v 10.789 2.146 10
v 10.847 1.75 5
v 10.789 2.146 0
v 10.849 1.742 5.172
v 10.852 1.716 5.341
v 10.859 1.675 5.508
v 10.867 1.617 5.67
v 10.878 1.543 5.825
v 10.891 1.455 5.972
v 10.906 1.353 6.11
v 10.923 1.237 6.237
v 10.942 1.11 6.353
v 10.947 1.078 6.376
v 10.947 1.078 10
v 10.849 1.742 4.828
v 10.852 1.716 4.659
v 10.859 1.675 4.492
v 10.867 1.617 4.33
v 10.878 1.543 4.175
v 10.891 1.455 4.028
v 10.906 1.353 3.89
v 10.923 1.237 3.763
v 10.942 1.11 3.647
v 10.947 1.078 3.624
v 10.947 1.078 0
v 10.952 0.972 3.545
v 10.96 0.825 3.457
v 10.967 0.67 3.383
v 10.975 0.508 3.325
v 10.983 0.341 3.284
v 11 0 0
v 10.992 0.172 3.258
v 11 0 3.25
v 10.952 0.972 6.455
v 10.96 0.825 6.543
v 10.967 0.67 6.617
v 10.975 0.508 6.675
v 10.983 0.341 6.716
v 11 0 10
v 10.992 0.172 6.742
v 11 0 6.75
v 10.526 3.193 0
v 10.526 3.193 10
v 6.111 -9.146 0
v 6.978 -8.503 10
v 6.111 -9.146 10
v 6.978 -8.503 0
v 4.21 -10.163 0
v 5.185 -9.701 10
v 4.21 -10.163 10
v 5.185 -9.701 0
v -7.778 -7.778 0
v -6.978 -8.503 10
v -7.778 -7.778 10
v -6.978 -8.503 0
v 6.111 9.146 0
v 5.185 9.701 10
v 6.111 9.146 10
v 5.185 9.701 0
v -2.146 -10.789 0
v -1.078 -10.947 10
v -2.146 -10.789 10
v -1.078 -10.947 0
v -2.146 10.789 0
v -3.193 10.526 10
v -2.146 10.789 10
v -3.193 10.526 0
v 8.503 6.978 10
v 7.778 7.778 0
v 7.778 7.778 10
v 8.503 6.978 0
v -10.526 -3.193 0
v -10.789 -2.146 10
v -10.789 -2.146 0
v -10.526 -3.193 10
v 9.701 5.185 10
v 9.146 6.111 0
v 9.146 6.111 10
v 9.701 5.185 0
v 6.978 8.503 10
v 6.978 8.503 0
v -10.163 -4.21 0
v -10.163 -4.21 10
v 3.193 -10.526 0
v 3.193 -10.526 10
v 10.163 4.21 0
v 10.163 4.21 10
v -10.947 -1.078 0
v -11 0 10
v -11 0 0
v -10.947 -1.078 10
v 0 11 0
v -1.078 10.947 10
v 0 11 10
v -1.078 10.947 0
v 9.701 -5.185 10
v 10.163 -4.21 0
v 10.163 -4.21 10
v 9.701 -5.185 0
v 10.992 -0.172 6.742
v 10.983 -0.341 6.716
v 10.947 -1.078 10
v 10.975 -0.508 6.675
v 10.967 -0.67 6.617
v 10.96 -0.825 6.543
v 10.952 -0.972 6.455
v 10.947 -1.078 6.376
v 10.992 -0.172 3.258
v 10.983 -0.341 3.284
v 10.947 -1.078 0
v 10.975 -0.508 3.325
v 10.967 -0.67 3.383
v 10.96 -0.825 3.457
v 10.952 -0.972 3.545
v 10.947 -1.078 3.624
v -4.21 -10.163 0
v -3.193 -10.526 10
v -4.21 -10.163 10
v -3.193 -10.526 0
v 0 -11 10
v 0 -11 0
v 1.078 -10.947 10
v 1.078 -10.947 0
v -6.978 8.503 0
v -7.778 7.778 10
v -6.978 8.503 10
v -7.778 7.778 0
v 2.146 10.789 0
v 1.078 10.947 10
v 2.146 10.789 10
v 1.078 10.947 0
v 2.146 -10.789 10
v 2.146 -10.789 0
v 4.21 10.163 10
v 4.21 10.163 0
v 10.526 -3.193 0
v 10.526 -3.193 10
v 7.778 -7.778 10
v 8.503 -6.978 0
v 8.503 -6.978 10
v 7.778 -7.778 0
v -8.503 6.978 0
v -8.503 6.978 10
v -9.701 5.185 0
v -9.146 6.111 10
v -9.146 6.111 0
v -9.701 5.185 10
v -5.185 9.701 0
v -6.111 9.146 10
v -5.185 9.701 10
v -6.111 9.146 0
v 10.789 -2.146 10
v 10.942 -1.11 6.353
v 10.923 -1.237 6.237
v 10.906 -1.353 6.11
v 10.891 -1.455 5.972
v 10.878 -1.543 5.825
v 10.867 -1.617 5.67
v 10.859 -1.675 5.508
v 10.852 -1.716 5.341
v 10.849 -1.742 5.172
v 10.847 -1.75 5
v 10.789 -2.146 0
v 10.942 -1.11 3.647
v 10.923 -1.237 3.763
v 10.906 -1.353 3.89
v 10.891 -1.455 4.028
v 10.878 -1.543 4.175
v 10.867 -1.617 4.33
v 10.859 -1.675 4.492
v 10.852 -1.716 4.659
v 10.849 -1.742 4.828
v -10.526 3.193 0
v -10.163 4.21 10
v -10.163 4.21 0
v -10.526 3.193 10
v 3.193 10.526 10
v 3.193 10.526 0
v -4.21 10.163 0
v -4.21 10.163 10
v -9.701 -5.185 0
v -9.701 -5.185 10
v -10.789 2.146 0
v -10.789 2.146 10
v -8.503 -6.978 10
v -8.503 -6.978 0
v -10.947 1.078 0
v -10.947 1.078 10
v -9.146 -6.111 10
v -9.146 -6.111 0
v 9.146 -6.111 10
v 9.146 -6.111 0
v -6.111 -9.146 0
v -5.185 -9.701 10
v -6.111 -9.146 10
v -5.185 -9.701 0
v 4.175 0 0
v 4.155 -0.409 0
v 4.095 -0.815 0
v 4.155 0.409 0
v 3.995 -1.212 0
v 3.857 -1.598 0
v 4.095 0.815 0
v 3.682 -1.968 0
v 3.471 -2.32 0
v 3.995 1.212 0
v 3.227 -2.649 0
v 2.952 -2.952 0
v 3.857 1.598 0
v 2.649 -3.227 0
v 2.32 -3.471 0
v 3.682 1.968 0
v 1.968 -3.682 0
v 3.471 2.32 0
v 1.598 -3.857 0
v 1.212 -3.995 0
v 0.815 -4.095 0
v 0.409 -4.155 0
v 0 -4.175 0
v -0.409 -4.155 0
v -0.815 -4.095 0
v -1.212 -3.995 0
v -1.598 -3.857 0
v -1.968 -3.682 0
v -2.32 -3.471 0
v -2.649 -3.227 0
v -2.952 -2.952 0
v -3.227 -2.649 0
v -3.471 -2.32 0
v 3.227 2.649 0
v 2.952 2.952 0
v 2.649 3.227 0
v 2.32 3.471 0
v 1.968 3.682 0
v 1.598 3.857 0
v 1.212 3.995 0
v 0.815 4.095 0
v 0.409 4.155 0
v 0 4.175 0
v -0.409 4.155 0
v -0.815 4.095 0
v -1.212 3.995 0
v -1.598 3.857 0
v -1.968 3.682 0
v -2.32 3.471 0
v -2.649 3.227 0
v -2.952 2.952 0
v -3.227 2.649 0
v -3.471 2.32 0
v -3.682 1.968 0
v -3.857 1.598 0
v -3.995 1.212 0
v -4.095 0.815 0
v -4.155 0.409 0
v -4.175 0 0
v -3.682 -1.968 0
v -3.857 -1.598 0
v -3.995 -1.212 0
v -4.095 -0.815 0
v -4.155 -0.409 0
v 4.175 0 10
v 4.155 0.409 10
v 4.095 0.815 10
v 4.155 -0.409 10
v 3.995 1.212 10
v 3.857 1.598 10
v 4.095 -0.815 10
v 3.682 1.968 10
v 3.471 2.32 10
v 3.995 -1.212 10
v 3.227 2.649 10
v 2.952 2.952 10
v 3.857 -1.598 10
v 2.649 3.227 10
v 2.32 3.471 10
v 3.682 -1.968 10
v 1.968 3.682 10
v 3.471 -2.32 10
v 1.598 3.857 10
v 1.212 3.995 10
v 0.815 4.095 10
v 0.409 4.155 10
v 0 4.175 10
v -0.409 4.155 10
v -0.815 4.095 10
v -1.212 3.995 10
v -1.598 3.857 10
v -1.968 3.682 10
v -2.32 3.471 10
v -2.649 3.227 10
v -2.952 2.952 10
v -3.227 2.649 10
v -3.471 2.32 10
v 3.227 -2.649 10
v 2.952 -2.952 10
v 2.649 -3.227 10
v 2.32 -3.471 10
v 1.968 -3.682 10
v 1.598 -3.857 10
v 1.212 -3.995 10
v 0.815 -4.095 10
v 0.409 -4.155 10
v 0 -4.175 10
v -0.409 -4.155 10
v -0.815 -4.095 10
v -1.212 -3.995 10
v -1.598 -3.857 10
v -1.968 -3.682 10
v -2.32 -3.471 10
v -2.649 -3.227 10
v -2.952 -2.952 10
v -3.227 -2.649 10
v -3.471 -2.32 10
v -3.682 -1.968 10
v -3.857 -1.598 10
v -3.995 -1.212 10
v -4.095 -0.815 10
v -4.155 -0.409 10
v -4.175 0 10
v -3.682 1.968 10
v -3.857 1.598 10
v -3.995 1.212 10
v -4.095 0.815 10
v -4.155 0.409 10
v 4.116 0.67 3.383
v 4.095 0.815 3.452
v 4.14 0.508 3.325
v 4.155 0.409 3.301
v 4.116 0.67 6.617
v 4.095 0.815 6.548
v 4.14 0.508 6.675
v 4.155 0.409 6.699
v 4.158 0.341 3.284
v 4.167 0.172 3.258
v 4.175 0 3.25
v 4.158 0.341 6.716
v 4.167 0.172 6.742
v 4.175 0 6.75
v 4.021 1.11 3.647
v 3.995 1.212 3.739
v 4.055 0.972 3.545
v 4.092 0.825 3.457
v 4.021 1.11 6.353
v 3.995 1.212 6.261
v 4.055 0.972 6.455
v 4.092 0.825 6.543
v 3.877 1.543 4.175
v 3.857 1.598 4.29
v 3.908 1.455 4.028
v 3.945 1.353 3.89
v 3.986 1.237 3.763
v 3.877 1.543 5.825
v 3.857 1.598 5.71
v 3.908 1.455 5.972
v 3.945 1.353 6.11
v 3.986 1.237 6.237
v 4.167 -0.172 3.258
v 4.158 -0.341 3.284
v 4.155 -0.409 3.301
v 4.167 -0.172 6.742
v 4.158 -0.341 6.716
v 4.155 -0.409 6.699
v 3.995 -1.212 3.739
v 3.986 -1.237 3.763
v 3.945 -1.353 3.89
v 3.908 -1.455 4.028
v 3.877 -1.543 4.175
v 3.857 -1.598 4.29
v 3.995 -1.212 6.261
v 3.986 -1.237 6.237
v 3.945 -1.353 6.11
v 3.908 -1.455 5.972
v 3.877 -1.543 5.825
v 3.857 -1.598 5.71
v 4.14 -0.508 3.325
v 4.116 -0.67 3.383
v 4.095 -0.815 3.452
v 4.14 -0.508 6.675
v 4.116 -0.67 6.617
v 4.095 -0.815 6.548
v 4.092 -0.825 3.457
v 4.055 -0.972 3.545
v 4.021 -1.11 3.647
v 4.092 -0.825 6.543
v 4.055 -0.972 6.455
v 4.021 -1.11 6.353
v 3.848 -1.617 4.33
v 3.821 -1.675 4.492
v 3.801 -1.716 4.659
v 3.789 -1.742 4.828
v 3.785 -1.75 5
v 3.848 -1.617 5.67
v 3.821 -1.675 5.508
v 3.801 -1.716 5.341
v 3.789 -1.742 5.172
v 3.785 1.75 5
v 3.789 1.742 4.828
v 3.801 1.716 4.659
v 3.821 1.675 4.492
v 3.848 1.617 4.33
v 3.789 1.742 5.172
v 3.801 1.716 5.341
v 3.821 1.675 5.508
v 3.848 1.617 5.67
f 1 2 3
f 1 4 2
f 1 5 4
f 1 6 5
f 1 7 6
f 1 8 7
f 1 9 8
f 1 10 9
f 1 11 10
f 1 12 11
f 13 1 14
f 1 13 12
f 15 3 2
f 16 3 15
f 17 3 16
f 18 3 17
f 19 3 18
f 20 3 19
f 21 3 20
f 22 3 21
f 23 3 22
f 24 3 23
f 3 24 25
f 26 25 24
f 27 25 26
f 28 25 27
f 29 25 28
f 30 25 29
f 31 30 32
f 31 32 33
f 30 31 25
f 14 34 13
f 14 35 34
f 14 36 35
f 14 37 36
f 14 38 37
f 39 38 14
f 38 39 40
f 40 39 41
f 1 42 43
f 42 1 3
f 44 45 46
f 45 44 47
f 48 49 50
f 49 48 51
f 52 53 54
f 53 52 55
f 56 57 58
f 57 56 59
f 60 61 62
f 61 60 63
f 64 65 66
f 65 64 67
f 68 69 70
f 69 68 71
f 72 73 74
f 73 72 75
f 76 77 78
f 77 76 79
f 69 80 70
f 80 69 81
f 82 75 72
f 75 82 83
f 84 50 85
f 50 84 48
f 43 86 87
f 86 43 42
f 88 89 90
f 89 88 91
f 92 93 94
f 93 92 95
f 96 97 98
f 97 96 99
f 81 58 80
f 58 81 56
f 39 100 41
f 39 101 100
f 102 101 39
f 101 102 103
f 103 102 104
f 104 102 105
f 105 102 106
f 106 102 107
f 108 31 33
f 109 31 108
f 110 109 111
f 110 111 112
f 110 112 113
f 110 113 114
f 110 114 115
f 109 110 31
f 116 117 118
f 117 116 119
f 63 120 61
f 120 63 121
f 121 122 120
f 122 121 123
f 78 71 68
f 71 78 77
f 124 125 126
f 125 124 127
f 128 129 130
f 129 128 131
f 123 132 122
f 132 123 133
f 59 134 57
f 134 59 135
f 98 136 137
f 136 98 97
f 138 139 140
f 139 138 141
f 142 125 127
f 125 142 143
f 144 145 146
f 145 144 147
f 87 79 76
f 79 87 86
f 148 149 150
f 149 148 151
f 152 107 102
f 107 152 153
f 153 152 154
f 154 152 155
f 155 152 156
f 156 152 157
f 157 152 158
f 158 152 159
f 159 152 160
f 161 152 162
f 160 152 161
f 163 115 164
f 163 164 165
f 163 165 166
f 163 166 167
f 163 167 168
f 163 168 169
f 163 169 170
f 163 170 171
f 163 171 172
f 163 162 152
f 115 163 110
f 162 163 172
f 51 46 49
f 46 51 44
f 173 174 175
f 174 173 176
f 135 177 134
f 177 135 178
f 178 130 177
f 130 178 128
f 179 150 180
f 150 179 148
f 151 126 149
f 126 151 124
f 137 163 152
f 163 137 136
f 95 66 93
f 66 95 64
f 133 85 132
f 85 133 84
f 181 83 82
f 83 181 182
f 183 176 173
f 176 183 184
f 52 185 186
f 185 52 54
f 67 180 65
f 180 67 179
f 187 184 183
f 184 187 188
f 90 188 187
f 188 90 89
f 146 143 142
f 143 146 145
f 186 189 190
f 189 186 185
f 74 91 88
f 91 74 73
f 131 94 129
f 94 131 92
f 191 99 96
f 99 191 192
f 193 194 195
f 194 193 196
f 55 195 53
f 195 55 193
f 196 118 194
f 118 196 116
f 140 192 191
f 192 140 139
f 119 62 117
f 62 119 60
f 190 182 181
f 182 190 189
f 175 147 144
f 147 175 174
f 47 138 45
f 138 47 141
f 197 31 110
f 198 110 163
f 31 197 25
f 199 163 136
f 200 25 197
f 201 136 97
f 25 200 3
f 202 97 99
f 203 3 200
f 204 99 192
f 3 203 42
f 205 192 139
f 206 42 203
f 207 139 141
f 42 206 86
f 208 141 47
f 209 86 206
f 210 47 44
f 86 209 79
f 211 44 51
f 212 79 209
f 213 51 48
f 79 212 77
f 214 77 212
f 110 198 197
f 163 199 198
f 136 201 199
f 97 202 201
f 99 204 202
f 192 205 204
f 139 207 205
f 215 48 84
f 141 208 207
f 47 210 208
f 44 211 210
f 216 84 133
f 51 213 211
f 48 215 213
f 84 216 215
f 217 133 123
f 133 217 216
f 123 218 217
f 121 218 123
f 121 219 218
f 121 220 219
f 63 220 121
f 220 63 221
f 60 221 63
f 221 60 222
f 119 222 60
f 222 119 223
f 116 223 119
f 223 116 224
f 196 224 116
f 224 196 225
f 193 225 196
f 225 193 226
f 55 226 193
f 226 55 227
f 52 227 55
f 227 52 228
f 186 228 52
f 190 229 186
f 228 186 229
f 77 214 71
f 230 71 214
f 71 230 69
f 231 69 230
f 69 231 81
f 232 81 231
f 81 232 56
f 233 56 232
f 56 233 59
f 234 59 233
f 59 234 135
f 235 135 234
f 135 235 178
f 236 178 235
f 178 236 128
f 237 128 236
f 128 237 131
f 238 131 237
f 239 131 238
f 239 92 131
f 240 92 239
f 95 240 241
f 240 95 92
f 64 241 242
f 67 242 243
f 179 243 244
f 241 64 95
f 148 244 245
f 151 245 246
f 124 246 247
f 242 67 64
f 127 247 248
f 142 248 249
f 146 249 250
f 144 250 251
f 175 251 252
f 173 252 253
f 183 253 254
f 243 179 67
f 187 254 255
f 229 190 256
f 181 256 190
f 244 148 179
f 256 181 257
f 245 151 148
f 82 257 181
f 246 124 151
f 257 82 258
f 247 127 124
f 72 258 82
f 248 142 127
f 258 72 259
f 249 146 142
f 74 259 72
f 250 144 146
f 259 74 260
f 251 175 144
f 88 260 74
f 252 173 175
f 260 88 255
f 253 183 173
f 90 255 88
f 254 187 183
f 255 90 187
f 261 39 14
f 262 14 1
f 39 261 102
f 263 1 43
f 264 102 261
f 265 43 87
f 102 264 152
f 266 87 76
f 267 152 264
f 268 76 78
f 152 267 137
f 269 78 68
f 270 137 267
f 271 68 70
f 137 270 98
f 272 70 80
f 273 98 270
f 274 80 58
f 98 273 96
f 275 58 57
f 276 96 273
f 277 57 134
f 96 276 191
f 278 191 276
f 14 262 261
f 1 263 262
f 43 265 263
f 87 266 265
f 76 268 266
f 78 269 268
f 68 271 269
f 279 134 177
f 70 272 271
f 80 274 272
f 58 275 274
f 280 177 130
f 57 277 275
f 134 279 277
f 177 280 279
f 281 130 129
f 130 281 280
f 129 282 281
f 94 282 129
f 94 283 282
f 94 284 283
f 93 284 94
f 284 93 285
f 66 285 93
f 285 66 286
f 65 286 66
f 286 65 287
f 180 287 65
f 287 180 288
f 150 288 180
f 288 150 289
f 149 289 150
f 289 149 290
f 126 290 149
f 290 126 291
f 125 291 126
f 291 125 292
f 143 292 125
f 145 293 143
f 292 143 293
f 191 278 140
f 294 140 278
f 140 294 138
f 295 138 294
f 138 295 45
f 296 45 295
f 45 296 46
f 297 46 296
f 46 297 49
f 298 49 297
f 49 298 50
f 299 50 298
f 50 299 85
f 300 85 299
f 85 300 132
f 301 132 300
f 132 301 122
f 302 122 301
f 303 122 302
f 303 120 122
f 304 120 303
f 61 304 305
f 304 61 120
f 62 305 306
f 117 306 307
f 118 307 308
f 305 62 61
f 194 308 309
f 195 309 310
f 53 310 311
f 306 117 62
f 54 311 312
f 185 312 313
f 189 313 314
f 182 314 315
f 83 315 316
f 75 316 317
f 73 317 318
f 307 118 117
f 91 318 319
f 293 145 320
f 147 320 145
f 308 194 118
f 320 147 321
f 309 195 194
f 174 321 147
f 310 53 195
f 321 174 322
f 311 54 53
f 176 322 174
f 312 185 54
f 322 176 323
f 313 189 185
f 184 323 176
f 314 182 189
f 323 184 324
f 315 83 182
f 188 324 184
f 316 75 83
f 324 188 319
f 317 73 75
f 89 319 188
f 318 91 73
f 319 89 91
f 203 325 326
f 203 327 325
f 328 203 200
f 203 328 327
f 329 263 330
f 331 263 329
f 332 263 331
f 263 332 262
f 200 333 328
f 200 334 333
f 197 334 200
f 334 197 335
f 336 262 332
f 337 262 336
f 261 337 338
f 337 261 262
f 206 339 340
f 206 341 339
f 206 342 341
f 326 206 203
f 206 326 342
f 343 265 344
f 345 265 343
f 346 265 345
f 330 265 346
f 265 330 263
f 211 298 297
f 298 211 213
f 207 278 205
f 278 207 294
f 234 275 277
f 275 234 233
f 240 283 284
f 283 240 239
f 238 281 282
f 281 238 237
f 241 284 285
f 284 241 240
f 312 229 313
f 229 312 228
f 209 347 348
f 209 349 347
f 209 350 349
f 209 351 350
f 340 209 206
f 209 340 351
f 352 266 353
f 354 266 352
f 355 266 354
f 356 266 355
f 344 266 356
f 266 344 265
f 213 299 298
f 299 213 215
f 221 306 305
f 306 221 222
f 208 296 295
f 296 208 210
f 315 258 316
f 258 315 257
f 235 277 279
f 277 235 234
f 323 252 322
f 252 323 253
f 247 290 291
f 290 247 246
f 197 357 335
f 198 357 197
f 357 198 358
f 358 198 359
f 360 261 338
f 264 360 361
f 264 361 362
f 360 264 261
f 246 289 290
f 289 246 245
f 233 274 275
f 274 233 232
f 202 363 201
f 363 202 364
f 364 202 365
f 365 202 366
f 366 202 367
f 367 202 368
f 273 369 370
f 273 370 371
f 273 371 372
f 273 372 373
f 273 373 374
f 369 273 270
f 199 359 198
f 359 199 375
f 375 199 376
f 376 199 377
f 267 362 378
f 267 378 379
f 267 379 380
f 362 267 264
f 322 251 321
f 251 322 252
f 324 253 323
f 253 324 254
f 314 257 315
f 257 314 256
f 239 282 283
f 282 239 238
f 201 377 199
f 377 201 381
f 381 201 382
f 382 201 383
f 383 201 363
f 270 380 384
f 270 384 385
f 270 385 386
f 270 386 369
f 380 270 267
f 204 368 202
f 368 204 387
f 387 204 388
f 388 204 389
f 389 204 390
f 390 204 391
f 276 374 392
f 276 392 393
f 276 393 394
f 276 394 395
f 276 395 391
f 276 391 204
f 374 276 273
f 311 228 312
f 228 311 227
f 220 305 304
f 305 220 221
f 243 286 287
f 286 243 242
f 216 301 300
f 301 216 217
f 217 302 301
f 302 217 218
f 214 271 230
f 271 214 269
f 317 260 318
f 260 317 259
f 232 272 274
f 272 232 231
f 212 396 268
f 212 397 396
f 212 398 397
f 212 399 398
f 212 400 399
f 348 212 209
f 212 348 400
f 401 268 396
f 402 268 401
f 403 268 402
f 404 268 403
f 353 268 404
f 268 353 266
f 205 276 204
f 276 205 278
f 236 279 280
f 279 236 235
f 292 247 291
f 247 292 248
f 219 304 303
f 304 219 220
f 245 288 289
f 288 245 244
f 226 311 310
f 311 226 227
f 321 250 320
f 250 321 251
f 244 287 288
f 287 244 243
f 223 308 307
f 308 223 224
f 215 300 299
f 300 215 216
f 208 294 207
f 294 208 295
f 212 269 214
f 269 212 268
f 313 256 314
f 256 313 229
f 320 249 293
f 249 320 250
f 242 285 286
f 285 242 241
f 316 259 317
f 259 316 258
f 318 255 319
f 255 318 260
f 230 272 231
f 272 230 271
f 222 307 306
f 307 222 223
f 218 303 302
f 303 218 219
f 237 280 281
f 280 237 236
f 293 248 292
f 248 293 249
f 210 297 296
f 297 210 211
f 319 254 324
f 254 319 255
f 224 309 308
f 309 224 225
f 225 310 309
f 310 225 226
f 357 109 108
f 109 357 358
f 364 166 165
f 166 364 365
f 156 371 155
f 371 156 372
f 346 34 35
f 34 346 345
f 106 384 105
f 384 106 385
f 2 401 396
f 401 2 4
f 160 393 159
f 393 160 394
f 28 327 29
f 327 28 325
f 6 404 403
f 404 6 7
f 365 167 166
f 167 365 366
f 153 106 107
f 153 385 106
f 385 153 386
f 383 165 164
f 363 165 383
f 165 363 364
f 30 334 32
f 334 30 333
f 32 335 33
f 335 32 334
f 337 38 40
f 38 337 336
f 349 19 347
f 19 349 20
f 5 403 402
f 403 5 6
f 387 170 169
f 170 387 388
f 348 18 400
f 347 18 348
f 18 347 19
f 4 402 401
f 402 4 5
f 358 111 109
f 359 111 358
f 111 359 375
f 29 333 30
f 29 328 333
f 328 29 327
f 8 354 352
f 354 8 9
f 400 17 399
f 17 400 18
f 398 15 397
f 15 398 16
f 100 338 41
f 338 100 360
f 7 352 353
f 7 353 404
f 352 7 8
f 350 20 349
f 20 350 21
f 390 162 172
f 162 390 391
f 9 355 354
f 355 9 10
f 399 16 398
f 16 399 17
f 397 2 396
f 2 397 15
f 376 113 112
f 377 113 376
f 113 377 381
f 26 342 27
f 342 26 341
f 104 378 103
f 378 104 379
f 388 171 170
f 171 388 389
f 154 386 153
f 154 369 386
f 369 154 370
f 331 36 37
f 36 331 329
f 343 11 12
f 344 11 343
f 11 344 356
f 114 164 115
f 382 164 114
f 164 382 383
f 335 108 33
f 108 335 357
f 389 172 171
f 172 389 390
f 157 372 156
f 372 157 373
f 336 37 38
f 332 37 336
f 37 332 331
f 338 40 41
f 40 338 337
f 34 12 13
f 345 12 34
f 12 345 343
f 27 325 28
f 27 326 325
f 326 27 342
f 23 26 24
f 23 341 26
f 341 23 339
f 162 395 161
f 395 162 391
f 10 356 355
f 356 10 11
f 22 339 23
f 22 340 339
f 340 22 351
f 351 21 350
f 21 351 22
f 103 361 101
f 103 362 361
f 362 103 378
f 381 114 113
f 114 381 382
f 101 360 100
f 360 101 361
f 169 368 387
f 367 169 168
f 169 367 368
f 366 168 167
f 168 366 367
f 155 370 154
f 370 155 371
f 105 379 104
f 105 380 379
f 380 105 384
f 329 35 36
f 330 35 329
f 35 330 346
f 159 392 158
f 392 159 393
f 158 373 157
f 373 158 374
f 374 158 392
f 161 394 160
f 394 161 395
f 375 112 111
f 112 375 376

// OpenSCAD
// file: parameters.scad
// =============================================================================
// Gen-AC Stacked dual-gap / mid-stator Halbach intensifier — WOUND-AWARE
// TWO wound pancake stators | ONE mid dual-face Halbach rotor | outer endbells
// Beats Gen-Z: thinner m2m, larger copper window, 125 t / coil
// =============================================================================

wire_awg            = 26;
wire_od             = 0.45;
turns               = 125;      // 9 coils/stator ×2 = 18 ×125 ×~0.115 ≈ 259 m
fill                = 0.70;
layers_per_face     = 2;
wind_build_axial    = layers_per_face * wire_od * fill;   // 0.63
wind_build_radial   = 2.8 * wire_od * fill;               // 0.882

coil_id_r           = 21.0;     // larger than Gen-Z 22–58
coil_od_r           = 60.0;
span_deg            = 34.0;     // 9 stations × 40°
former_web          = 1.7;
flange_t            = 0.65;
wall                = 1.2;
slot_w              = 2.4;
mount_hole          = 3.5;
tab_len             = 7.0;

former_bare_h       = former_web + 2 * flange_t;            // 3.0
coil_envelope_h     = former_bare_h + 2 * wind_build_axial; // 4.26

run_clear           = 0.60;
gap_spacer_h        = run_clear + wind_build_axial;         // 1.23
m2m                 = coil_envelope_h + 2 * run_clear;      // 5.46 per gap (beats Gen-Z 5.86)

coil_stations       = 9;        // per stator; ×2 = 18 total
bay_r_in            = coil_id_r - 2.0 - wind_build_radial;
bay_r_out           = coil_od_r + 2.0 + wind_build_radial;
bay_span            = span_deg + 4.0;
bay_offset          = 2.0;
bay_depth           = former_bare_h + wind_build_axial;
stator_back_web     = 2.0;
stator_thick        = bay_depth + stator_back_web;
stator_od           = 156.0;
shaft_clear_stator  = 40.0;
coil_mount_r        = 30.0;

large_pocket_d      = 20.3;
small_pocket_d      = 5.3;
pocket_h            = 5.2;
large_n             = 8;
R_large             = 52.0;
R_small_inner       = 40.0;
R_small_mid         = 52.0;
R_small_outer       = 64.0;
carrier_od          = 152.0;
mid_carrier_thick   = 12.0;
hub_h               = 10.0;
hub_od              = 30.0;
rotor_b_offset_deg  = 22.5;

shaft_bore          = 8.35;
bearing_d           = 21.85;
bearing_h           = 7.2;
m3_clear            = 3.5;
bolt_r_inner        = 36.0;
bolt_n_inner        = 6;
flange_bolt_r       = 72.0;
flange_bolt_n       = 6;
brace_r             = 68.0;
brace_d             = 4.3;
brace_n             = 4;

spacer_pad_od       = 14.0;
spacer_pad_id       = m3_clear;
endbell_od          = 156.0;
endbell_thick       = 8.0;
endbell_shaft_clear = 10.0;

$fn = 64;
// main file
// Gen-AC shaft collar — print ×2–4
include <parameters.scad>;
$fn = 64;
od = 22; id = shaft_bore; h = 10; set_d = 3.5;
difference() {
    cylinder(d=od, h=h);
    translate([0, 0, -0.1]) cylinder(d=id, h=h + 0.2);
    translate([0, 0, h/2]) rotate([0, 90, 0]) cylinder(d=set_d, h=od);
}
